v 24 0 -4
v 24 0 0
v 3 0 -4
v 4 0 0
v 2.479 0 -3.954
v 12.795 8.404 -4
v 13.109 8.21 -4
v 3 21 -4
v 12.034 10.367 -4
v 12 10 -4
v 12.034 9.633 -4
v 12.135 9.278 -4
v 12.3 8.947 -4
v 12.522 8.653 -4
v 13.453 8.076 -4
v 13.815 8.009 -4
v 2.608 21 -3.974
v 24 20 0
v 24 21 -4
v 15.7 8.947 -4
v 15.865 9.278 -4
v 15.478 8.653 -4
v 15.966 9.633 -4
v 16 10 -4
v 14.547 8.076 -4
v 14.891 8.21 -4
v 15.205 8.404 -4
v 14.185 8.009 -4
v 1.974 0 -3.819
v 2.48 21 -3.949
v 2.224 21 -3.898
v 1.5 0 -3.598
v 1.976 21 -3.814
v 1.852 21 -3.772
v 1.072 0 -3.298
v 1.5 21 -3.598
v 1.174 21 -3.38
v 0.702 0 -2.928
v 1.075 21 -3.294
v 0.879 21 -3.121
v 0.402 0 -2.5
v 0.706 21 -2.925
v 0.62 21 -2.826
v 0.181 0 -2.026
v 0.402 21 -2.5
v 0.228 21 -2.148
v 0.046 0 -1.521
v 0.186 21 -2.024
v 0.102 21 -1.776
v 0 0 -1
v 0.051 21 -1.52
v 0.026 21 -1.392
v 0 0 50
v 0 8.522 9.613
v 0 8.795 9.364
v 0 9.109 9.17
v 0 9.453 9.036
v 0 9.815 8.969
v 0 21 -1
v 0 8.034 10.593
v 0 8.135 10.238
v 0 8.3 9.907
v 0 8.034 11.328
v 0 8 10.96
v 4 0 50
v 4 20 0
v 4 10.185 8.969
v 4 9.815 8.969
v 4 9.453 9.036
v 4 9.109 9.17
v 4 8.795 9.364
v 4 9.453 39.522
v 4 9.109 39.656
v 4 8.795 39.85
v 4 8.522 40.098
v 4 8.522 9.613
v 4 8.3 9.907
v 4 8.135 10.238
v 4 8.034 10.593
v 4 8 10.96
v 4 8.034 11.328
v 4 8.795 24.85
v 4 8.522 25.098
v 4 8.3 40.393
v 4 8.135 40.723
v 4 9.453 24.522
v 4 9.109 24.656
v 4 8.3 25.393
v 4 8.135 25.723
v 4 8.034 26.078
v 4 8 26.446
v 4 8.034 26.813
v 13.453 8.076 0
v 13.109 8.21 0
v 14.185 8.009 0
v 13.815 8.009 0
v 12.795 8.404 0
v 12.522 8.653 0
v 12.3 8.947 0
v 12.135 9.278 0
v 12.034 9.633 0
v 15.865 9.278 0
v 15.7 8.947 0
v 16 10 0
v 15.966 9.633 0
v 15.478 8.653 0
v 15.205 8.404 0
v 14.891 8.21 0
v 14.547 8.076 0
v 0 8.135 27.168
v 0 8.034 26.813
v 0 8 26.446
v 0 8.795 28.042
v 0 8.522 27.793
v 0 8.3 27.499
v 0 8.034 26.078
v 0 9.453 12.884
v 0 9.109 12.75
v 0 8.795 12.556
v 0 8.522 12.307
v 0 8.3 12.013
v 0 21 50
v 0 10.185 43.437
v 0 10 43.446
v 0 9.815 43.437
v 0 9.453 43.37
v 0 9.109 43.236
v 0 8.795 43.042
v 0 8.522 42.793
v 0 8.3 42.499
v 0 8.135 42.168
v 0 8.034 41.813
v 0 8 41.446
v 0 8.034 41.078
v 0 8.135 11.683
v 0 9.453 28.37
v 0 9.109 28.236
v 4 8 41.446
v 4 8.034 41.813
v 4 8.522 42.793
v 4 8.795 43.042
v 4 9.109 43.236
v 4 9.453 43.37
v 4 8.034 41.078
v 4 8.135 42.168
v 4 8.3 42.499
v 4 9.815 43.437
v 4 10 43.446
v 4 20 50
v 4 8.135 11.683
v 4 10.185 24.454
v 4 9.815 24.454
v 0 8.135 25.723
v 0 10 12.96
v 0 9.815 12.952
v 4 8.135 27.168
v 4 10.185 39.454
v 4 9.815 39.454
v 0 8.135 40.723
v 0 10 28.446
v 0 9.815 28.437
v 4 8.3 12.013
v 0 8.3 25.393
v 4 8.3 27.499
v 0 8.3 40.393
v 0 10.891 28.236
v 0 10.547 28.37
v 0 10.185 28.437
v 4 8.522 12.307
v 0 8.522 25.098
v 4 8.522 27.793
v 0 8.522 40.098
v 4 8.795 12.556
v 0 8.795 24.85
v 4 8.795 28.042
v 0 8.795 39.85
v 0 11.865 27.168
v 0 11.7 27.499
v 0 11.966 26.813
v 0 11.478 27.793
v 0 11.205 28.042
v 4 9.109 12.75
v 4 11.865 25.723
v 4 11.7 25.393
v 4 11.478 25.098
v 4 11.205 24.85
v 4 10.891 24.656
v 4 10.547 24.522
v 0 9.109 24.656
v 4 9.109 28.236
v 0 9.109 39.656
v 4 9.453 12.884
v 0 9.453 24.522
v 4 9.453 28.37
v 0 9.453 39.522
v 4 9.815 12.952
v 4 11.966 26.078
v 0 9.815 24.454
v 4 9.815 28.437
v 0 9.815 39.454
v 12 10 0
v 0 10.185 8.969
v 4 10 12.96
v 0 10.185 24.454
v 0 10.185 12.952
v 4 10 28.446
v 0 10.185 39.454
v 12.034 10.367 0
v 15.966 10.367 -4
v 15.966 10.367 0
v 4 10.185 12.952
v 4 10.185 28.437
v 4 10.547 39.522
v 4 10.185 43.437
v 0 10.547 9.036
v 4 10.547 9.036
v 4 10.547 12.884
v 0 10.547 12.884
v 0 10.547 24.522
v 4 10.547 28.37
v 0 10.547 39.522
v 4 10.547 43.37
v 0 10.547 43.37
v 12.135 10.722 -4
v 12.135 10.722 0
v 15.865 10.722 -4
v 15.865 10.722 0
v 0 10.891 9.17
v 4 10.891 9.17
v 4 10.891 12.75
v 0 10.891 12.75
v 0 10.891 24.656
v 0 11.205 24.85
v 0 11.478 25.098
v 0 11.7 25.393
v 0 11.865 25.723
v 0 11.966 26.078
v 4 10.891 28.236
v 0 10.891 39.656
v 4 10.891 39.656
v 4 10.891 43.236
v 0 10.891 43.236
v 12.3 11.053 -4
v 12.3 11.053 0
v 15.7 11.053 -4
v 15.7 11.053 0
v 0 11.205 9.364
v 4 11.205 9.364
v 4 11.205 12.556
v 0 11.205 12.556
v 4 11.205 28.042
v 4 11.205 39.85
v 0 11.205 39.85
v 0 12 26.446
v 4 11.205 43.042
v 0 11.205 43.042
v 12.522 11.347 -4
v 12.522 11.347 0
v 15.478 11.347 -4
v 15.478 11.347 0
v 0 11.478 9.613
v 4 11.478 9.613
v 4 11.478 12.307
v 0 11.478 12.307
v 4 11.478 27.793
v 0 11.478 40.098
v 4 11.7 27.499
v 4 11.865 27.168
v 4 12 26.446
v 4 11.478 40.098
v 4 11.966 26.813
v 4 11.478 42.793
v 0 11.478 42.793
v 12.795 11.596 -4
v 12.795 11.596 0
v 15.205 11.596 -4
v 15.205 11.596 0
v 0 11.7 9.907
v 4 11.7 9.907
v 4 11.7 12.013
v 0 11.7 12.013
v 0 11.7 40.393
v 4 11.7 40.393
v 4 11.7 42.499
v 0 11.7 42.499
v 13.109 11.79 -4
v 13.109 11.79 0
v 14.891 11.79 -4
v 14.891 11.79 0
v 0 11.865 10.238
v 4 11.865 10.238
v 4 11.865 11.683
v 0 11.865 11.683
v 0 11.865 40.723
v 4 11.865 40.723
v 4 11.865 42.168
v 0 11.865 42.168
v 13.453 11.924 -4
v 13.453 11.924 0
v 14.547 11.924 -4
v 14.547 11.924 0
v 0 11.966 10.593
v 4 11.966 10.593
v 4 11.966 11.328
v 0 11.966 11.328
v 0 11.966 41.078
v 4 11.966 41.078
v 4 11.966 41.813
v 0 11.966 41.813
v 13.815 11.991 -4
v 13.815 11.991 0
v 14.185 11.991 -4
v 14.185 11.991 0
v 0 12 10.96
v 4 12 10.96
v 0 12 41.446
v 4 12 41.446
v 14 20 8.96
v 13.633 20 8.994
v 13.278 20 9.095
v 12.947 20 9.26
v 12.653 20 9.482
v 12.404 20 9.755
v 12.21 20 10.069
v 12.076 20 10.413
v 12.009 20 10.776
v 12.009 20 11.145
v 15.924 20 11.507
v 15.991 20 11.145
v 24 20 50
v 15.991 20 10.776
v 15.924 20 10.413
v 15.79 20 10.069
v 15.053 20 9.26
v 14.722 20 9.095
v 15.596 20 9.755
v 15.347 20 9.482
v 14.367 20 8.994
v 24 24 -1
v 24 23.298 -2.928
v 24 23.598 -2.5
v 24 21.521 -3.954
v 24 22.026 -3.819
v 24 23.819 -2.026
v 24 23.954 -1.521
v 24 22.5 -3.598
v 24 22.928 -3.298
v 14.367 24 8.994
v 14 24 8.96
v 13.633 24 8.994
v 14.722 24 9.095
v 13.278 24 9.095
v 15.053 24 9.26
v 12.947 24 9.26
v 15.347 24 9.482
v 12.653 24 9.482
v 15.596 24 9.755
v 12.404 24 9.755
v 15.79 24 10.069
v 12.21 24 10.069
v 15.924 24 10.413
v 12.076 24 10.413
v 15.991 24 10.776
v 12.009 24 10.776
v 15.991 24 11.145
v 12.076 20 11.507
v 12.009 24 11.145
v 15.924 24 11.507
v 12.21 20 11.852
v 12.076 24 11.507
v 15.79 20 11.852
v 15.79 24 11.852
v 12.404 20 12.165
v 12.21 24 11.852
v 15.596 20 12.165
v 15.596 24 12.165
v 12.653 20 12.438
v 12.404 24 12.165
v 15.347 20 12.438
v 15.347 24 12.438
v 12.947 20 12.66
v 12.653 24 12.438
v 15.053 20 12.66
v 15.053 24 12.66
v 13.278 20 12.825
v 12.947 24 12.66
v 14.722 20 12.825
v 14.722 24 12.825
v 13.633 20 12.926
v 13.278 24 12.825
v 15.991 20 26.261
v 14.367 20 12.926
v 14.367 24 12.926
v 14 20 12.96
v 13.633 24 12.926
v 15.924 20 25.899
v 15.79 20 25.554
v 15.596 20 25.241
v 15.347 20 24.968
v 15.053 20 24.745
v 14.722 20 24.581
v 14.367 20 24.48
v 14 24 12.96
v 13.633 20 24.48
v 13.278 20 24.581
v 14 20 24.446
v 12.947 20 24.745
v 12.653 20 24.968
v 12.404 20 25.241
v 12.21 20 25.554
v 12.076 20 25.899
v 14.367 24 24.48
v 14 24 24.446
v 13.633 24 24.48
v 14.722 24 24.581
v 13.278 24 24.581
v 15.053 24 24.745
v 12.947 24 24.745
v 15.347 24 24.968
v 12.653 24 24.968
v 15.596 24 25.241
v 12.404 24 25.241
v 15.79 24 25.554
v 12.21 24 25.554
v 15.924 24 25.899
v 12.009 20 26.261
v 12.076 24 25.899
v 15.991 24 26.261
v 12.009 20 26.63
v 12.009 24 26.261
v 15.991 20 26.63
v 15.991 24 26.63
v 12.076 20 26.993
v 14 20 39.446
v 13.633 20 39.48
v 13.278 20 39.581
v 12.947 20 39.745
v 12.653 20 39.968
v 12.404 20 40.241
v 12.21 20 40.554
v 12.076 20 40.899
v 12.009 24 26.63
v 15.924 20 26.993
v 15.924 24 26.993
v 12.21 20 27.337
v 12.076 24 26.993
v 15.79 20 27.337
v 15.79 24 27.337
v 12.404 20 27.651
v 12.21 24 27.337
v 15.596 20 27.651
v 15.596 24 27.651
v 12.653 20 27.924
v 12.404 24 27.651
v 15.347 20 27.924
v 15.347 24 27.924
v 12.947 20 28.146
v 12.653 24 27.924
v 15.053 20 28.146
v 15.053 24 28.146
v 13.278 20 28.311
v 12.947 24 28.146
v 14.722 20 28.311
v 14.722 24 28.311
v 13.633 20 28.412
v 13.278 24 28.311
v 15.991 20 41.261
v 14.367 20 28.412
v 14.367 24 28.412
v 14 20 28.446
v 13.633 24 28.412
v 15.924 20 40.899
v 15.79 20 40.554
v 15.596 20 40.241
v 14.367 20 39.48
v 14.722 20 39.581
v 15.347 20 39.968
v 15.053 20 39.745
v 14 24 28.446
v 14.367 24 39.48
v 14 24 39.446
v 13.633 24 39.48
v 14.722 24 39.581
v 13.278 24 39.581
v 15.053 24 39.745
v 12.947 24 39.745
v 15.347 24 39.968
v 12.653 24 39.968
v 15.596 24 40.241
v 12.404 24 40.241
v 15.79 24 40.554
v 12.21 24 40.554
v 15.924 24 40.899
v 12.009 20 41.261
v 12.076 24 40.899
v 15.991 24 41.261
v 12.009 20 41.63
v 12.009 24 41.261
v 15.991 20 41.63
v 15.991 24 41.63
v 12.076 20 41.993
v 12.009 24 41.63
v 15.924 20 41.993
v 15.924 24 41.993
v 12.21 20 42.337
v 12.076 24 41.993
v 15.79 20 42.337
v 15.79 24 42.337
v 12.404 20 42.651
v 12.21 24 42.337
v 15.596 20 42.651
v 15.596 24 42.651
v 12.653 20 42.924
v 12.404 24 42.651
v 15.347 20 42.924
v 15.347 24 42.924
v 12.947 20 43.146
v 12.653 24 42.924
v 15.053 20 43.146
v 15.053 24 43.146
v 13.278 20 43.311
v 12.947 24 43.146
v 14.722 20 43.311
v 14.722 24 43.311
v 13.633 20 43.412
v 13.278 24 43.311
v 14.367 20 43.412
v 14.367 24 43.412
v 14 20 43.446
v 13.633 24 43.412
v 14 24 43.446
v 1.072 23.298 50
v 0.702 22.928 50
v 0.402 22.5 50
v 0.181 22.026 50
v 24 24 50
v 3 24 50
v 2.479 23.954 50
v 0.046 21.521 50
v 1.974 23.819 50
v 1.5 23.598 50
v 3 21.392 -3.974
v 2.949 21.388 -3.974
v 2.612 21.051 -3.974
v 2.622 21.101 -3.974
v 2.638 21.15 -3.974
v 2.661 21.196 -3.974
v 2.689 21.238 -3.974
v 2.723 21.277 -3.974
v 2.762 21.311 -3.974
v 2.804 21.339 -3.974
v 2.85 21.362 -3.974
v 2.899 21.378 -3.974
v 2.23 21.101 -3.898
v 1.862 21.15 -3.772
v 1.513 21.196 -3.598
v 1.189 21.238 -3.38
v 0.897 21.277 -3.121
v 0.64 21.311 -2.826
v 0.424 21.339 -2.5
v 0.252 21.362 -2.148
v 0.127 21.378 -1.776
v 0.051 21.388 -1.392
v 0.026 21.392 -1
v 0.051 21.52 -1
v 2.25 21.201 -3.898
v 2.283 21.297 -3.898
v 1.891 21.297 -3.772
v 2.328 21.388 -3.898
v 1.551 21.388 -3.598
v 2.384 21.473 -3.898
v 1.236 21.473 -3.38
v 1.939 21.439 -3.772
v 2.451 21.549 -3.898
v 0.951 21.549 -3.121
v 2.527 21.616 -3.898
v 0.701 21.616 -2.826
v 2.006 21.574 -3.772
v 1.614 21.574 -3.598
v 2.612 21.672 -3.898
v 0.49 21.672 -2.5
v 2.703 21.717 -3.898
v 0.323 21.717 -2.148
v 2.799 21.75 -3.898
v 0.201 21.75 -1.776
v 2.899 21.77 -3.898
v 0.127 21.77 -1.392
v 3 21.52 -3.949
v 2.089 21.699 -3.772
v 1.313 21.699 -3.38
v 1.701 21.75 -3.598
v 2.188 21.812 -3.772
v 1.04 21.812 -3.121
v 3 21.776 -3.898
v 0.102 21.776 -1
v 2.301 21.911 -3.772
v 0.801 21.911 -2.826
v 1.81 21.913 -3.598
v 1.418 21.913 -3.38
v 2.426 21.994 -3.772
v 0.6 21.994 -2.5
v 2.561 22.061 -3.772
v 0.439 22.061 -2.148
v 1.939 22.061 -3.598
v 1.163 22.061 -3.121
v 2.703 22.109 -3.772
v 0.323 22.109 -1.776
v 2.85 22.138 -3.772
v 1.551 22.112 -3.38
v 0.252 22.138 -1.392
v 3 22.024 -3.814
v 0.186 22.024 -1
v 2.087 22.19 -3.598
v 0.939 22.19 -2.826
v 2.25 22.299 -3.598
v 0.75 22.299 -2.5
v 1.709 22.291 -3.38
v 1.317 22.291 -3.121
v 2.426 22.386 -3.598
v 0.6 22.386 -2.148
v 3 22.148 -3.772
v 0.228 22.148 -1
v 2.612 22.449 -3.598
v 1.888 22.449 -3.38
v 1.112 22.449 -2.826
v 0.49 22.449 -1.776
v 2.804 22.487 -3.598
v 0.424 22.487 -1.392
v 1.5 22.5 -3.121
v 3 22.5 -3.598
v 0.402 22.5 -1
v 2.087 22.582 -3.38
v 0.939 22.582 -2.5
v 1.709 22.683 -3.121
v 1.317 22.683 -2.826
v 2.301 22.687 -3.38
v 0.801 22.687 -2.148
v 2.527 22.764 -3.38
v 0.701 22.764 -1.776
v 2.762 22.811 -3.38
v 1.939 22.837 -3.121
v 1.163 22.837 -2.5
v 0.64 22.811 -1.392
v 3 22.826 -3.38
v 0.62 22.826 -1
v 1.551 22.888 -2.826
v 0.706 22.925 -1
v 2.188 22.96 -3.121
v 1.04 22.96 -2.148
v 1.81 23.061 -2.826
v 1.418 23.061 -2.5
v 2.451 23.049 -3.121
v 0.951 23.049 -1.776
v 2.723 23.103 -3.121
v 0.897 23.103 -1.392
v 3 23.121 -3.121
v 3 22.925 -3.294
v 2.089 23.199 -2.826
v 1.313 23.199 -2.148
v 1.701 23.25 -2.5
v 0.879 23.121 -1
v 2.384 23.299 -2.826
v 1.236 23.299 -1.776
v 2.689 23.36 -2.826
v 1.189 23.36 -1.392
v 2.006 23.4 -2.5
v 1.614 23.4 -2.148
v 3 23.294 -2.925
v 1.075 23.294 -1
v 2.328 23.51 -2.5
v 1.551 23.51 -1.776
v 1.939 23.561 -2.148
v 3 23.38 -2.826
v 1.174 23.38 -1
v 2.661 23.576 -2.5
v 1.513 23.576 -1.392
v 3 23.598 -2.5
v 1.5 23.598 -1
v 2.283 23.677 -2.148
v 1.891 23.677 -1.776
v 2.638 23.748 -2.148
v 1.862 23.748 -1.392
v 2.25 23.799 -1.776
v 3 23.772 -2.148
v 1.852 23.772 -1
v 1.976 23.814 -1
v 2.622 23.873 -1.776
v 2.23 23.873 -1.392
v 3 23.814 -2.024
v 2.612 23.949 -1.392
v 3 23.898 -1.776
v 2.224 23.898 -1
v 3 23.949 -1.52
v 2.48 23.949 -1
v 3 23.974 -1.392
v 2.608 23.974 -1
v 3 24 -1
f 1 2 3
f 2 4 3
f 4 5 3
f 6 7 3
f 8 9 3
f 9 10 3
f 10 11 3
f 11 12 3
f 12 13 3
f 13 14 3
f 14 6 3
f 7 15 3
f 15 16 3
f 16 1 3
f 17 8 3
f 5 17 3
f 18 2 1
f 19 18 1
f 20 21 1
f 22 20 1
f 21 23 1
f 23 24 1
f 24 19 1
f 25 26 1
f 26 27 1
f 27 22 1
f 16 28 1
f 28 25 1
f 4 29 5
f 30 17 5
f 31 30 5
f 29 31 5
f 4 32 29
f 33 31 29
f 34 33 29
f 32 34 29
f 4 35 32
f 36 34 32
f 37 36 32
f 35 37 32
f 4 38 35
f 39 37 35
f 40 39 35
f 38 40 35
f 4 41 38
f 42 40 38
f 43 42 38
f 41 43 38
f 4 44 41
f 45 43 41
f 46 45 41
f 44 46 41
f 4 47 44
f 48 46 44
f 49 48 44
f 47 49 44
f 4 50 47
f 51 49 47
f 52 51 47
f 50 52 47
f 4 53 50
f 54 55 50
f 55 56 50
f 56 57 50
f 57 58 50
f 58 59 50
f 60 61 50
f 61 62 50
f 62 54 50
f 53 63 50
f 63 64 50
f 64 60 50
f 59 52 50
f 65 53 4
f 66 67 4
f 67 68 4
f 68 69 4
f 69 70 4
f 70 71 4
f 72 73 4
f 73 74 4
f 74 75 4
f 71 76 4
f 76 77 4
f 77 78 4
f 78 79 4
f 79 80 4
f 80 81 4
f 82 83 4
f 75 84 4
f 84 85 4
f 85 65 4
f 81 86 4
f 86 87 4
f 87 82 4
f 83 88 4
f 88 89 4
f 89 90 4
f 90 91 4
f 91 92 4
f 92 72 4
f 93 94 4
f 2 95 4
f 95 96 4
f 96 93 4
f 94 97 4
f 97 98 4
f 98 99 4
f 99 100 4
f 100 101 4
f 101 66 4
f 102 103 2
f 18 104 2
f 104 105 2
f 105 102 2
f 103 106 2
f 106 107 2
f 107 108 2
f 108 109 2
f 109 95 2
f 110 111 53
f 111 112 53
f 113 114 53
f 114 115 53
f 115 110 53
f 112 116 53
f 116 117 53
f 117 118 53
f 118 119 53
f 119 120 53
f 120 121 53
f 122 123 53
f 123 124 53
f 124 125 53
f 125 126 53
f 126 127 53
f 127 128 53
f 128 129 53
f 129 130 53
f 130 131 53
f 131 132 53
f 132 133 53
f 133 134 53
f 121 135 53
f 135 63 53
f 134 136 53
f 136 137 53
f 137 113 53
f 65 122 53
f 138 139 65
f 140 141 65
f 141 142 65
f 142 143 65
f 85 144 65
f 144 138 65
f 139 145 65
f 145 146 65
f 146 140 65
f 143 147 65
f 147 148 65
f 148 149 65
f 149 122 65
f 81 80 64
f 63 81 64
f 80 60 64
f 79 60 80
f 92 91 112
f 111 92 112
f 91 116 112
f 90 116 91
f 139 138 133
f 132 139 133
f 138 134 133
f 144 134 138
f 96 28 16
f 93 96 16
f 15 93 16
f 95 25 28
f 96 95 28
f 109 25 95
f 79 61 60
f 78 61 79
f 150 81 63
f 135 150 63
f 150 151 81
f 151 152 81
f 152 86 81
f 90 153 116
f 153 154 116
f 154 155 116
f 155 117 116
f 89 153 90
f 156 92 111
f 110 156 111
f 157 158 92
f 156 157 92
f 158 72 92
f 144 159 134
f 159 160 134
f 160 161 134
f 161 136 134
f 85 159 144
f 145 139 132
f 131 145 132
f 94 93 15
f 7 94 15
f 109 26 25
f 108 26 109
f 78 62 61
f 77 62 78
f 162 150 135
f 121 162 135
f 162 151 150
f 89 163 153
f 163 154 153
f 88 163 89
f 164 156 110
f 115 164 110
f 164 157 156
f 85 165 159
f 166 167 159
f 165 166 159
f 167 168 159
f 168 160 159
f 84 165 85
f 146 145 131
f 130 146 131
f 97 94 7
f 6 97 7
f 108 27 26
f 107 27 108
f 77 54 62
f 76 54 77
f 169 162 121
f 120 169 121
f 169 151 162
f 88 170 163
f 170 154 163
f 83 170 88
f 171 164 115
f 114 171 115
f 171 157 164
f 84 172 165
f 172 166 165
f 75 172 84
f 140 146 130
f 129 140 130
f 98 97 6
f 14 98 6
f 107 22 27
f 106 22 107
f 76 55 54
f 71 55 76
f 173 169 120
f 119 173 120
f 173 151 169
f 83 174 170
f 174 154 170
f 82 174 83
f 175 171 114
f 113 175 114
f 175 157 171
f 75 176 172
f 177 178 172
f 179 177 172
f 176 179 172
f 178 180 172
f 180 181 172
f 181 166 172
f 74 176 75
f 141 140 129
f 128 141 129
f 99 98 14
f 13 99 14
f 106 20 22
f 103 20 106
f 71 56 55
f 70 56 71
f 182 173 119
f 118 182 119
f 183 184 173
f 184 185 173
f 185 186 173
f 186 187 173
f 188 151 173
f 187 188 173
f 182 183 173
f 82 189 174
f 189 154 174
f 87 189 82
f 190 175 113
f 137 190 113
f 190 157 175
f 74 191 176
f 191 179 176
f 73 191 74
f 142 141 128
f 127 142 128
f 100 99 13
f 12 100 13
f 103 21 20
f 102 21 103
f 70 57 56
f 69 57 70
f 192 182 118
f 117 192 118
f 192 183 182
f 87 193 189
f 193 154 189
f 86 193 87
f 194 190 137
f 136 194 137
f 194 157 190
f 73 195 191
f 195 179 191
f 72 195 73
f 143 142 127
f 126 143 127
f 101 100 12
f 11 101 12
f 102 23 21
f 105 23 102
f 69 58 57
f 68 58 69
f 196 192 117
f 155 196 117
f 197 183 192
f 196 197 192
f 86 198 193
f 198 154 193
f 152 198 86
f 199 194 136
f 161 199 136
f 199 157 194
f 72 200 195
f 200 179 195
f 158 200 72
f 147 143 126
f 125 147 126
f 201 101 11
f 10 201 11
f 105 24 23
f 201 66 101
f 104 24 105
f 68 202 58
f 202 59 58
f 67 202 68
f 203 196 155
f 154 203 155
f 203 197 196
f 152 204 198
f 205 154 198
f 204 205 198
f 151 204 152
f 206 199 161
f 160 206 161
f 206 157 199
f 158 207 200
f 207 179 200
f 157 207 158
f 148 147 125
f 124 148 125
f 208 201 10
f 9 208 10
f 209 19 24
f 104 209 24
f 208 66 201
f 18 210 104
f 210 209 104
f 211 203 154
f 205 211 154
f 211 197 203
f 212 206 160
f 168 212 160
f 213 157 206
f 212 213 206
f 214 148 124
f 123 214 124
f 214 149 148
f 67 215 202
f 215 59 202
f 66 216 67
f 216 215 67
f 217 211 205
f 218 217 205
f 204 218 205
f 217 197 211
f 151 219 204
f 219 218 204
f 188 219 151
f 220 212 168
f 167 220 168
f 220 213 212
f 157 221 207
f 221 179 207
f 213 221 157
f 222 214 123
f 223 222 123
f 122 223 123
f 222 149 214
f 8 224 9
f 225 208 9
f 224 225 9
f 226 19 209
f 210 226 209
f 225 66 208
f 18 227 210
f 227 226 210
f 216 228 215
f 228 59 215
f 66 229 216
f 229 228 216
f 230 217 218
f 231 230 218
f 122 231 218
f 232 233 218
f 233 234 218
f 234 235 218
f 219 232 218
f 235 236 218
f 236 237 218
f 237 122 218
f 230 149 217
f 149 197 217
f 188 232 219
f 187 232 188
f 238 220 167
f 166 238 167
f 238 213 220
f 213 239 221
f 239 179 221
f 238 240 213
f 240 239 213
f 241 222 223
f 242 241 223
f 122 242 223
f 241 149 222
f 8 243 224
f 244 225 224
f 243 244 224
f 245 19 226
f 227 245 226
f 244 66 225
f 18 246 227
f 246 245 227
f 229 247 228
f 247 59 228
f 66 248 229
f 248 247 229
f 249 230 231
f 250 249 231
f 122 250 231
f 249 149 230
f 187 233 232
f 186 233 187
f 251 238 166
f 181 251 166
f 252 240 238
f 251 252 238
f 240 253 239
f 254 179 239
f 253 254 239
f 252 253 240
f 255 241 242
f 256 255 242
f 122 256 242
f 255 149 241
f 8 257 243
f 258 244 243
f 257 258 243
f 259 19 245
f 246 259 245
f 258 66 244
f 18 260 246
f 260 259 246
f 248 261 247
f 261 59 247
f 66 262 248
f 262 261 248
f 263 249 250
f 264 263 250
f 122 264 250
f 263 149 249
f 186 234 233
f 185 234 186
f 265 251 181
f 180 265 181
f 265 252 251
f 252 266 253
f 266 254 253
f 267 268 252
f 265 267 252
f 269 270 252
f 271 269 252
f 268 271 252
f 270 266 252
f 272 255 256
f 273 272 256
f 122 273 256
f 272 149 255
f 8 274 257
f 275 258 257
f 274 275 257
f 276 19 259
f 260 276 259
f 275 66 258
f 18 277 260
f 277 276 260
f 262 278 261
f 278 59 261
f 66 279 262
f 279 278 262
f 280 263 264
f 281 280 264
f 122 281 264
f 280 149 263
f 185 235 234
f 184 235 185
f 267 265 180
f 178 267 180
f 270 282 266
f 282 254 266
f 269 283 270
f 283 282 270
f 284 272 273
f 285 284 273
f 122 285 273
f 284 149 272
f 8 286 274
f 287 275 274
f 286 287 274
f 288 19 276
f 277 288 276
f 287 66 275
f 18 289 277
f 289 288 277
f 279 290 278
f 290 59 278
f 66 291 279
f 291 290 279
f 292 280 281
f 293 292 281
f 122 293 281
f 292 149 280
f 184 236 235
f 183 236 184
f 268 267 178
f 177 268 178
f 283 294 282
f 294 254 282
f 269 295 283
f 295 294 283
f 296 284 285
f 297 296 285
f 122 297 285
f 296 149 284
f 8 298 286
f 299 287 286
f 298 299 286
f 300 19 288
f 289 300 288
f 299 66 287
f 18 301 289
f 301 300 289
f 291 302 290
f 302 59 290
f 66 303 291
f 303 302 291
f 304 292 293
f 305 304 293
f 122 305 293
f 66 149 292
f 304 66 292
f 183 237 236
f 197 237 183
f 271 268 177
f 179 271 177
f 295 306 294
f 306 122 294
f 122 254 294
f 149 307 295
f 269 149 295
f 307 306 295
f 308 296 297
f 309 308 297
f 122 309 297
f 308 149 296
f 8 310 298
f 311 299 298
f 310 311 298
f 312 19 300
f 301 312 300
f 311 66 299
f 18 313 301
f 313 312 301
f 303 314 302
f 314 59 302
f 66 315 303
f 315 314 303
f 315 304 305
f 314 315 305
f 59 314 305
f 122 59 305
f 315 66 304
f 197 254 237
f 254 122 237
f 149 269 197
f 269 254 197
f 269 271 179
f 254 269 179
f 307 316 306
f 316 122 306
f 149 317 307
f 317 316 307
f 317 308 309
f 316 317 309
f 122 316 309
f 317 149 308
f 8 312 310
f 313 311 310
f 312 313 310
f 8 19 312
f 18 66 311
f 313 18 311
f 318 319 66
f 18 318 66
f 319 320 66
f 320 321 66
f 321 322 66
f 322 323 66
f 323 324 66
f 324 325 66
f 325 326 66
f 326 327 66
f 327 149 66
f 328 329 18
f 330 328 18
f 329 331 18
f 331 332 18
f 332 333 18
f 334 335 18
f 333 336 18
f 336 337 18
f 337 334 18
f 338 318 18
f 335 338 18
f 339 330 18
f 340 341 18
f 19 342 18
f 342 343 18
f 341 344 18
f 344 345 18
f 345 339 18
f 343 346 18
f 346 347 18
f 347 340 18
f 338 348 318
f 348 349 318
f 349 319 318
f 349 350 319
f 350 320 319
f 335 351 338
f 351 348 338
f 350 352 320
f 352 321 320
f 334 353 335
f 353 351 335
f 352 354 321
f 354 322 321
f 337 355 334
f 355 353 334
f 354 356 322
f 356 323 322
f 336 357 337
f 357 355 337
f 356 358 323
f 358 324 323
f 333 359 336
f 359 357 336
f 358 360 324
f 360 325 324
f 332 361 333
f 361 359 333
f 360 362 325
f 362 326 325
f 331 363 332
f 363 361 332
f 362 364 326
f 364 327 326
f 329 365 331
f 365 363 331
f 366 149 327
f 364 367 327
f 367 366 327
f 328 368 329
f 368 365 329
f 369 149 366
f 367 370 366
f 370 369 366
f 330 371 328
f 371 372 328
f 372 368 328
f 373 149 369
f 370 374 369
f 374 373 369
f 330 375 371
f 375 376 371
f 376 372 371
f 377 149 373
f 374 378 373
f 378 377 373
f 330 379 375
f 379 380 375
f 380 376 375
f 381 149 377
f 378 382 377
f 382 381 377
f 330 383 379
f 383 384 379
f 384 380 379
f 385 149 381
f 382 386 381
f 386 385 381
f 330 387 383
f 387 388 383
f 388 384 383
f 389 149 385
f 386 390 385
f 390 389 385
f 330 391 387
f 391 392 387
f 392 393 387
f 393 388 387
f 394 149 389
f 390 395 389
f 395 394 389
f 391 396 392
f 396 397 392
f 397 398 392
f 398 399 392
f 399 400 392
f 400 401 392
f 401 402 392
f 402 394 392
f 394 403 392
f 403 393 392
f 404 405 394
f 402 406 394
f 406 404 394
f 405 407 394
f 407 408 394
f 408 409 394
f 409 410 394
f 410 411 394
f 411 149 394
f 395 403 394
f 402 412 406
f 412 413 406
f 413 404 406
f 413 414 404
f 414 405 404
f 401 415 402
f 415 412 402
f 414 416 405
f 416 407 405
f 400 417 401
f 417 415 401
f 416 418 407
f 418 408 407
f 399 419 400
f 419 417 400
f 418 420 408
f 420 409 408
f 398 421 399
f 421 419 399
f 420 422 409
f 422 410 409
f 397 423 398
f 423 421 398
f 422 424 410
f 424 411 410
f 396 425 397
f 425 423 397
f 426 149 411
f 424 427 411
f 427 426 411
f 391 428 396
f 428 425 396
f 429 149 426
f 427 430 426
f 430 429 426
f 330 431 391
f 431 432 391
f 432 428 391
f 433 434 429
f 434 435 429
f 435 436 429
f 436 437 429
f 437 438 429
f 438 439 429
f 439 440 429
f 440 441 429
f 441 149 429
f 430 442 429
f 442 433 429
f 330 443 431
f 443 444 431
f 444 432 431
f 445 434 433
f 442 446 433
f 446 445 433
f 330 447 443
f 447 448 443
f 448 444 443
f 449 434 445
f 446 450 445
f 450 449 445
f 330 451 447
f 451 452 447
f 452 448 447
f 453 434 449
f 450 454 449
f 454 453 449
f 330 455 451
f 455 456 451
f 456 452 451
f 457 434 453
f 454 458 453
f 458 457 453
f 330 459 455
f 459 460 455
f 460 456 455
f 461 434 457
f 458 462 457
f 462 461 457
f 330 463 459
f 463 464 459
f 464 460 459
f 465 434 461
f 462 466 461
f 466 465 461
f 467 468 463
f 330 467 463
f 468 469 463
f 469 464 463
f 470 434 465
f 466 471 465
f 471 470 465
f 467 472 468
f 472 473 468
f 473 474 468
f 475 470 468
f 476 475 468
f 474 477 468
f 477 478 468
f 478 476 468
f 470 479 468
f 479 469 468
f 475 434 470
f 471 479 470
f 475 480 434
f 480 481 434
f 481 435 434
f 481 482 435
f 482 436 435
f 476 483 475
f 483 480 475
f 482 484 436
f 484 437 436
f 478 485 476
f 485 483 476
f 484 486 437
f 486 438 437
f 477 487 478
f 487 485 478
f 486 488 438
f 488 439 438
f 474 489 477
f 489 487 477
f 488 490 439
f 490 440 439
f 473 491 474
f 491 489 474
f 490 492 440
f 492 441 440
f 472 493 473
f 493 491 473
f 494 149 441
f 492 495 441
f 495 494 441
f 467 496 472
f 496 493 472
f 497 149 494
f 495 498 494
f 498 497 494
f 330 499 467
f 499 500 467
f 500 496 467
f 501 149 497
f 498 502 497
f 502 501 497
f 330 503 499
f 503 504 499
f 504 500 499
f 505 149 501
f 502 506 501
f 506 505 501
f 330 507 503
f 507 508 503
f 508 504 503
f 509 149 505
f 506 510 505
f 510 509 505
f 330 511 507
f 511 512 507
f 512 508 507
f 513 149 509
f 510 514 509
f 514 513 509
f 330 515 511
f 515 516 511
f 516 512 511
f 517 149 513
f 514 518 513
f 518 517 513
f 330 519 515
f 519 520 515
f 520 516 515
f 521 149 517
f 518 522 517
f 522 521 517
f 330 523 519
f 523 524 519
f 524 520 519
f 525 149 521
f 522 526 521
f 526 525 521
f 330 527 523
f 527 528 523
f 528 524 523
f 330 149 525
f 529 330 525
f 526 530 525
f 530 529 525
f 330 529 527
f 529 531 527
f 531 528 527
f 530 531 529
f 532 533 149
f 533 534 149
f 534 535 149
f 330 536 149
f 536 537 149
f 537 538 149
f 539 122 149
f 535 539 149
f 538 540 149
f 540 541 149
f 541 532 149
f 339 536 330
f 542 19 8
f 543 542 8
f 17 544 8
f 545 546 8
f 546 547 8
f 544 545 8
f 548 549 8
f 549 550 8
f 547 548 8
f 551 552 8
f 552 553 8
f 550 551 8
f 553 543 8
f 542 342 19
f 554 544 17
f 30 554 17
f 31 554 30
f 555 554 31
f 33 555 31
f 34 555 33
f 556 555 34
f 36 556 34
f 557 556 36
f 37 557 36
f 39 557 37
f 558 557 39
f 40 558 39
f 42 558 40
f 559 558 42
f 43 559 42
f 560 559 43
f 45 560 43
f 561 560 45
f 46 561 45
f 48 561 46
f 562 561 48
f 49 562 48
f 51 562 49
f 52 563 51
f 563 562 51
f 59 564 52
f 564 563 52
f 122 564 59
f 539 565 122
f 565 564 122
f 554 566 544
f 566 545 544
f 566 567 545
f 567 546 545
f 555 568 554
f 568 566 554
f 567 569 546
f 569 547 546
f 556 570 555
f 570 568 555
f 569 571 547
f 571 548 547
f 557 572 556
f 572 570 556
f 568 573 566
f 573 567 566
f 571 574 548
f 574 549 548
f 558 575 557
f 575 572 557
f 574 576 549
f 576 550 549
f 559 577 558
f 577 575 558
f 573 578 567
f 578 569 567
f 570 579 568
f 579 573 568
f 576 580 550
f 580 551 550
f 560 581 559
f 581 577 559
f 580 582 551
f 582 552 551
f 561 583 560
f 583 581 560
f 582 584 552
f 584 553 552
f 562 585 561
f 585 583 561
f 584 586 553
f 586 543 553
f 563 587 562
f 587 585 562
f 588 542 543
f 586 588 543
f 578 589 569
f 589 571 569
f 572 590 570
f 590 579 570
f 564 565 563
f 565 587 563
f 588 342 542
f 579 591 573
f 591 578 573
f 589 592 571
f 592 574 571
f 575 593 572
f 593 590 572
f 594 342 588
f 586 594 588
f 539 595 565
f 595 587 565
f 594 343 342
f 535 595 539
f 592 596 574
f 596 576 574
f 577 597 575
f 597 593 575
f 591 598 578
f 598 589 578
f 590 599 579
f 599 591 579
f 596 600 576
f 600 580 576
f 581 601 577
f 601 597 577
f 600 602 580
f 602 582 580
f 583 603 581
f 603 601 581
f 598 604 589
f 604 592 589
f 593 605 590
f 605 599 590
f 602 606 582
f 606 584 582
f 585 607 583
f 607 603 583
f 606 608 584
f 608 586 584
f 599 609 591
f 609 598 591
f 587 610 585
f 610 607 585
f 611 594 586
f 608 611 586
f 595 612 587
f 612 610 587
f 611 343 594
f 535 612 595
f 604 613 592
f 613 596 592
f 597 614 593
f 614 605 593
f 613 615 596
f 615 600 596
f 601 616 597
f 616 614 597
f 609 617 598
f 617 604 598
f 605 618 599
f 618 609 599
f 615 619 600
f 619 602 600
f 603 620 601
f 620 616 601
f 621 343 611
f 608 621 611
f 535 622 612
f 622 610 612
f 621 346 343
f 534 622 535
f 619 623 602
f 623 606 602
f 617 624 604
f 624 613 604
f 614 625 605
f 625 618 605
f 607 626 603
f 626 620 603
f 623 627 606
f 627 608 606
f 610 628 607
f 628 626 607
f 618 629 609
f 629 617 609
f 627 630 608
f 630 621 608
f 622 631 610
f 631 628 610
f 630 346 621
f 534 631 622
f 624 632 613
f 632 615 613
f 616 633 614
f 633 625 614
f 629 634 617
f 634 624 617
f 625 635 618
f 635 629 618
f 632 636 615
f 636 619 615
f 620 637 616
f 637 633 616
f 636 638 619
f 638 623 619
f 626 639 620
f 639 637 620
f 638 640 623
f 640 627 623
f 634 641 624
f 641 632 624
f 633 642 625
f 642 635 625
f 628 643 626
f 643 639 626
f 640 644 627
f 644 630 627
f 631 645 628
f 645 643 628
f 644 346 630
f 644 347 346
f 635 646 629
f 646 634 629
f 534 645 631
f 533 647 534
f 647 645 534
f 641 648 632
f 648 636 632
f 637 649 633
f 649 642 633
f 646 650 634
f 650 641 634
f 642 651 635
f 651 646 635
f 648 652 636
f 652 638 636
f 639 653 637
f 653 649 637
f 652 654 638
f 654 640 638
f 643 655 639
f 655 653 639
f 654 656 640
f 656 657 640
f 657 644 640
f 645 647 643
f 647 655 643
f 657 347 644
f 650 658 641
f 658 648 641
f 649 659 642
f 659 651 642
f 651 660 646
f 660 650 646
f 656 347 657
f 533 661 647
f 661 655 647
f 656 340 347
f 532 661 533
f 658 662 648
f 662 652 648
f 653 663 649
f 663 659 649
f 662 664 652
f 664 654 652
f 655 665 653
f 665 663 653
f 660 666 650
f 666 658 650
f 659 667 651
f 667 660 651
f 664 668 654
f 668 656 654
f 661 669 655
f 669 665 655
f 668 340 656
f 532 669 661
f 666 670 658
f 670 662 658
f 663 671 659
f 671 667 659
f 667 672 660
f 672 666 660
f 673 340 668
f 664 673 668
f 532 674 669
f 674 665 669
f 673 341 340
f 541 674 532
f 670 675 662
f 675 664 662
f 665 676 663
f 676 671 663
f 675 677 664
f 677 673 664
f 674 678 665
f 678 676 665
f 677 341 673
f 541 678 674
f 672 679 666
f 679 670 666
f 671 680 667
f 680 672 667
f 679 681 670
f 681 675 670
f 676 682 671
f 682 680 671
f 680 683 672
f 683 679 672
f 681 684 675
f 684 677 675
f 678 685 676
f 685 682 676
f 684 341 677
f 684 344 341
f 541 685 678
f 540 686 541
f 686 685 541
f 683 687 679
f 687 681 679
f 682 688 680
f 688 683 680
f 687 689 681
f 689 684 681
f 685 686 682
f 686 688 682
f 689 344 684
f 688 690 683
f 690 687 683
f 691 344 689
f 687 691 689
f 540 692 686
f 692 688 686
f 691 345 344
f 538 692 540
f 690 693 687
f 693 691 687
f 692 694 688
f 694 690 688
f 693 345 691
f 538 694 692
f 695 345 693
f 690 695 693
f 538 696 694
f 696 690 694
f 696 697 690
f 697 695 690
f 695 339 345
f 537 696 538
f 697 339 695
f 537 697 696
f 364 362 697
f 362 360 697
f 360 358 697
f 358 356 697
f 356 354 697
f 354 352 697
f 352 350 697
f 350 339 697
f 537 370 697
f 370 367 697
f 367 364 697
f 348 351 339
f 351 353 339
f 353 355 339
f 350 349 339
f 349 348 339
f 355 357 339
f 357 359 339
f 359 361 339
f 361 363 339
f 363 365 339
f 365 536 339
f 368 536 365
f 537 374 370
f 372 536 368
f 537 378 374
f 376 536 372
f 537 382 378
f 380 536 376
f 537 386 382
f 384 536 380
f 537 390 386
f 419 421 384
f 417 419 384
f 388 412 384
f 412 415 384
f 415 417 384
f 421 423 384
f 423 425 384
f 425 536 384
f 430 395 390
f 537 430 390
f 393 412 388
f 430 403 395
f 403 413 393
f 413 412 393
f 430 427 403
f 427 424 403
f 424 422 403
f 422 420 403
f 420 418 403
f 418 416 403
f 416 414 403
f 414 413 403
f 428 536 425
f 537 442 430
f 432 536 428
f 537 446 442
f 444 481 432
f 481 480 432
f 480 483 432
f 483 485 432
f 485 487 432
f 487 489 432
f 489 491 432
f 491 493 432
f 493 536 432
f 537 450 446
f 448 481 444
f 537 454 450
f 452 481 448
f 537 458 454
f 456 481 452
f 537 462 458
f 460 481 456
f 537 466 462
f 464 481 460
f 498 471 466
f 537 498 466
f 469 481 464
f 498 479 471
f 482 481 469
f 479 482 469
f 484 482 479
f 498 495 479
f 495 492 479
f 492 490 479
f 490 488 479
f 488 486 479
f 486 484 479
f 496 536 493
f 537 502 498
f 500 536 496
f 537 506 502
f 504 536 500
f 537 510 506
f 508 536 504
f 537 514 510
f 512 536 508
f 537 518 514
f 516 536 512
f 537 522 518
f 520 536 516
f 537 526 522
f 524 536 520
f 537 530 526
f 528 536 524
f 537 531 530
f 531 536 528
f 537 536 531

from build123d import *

# Parameters (mm, degrees)
BOSS_EXTRUDE1_DEPTH = 50
SKETCH2_W           = 24
SKETCH2_H           = 24
BOSS_EXTRUDE2_DEPTH = 4
SKETCH3_R           = 2
CUT_EXTRUDE1_DEPTH  = 4
SKETCH4_R           = 2
CUT_EXTRUDE2_DEPTH  = 4
FILLET1_R           = 3


with BuildPart() as part:
    # Sketch1 → Boss-Extrude1 (new body)
    with BuildSketch(Plane.XY):
        Polygon((0, 0), (0, 24), (24, 24), (24, 20), (4, 20), (4, 0), align=None)
    extrude(amount=BOSS_EXTRUDE1_DEPTH)

    # Sketch2 → Boss-Extrude2 (add)
    with BuildSketch(Plane(origin=(0, 0, 0), x_dir=(-1, 0, 0), z_dir=(0, 0, -1))):
        with Locations((-12, 12)):
            Rectangle(SKETCH2_W, SKETCH2_H)
    extrude(amount=BOSS_EXTRUDE2_DEPTH)

    # Sketch3 → Cut-Extrude1 (cut)
    with BuildSketch(Plane(origin=(0, 0, -4), x_dir=(-1, 0, 0), z_dir=(0, 0, -1))):
        with Locations((-14, 10)):
            Circle(SKETCH3_R)
    extrude(amount=-CUT_EXTRUDE1_DEPTH, mode=Mode.SUBTRACT)

    # Sketch4 → Cut-Extrude2 (cut)
    with BuildSketch(Plane(origin=(0, 24, 0), x_dir=(1, 0, 0), z_dir=(0, 1, 0))):
        with Locations((14, -26.445871018)):
            Circle(SKETCH4_R)
        with Locations((14, -10.960041792)):
            Circle(SKETCH4_R)
        with Locations((14, -41.445871018)):
            Circle(SKETCH4_R)
    cut_extrude2 = extrude(amount=-CUT_EXTRUDE2_DEPTH, mode=Mode.SUBTRACT)

    # Mirror1: Cut-Extrude2 across plane
    add(cut_extrude2.mirror(Plane(origin=(12, 12, 0), x_dir=(0, 0, 1), z_dir=(-0.707106781, -0.707106781, 0))), mode=Mode.SUBTRACT)

    # Fillet1
    fillet1_edges = [part.edges().sort_by_distance(p)[0] for p in [
        (0, 24, 23),
        (0, 12, -4),
        (12, 24, -4),
    ]]
    fillet(fillet1_edges, radius=FILLET1_R)


solid = part.part
